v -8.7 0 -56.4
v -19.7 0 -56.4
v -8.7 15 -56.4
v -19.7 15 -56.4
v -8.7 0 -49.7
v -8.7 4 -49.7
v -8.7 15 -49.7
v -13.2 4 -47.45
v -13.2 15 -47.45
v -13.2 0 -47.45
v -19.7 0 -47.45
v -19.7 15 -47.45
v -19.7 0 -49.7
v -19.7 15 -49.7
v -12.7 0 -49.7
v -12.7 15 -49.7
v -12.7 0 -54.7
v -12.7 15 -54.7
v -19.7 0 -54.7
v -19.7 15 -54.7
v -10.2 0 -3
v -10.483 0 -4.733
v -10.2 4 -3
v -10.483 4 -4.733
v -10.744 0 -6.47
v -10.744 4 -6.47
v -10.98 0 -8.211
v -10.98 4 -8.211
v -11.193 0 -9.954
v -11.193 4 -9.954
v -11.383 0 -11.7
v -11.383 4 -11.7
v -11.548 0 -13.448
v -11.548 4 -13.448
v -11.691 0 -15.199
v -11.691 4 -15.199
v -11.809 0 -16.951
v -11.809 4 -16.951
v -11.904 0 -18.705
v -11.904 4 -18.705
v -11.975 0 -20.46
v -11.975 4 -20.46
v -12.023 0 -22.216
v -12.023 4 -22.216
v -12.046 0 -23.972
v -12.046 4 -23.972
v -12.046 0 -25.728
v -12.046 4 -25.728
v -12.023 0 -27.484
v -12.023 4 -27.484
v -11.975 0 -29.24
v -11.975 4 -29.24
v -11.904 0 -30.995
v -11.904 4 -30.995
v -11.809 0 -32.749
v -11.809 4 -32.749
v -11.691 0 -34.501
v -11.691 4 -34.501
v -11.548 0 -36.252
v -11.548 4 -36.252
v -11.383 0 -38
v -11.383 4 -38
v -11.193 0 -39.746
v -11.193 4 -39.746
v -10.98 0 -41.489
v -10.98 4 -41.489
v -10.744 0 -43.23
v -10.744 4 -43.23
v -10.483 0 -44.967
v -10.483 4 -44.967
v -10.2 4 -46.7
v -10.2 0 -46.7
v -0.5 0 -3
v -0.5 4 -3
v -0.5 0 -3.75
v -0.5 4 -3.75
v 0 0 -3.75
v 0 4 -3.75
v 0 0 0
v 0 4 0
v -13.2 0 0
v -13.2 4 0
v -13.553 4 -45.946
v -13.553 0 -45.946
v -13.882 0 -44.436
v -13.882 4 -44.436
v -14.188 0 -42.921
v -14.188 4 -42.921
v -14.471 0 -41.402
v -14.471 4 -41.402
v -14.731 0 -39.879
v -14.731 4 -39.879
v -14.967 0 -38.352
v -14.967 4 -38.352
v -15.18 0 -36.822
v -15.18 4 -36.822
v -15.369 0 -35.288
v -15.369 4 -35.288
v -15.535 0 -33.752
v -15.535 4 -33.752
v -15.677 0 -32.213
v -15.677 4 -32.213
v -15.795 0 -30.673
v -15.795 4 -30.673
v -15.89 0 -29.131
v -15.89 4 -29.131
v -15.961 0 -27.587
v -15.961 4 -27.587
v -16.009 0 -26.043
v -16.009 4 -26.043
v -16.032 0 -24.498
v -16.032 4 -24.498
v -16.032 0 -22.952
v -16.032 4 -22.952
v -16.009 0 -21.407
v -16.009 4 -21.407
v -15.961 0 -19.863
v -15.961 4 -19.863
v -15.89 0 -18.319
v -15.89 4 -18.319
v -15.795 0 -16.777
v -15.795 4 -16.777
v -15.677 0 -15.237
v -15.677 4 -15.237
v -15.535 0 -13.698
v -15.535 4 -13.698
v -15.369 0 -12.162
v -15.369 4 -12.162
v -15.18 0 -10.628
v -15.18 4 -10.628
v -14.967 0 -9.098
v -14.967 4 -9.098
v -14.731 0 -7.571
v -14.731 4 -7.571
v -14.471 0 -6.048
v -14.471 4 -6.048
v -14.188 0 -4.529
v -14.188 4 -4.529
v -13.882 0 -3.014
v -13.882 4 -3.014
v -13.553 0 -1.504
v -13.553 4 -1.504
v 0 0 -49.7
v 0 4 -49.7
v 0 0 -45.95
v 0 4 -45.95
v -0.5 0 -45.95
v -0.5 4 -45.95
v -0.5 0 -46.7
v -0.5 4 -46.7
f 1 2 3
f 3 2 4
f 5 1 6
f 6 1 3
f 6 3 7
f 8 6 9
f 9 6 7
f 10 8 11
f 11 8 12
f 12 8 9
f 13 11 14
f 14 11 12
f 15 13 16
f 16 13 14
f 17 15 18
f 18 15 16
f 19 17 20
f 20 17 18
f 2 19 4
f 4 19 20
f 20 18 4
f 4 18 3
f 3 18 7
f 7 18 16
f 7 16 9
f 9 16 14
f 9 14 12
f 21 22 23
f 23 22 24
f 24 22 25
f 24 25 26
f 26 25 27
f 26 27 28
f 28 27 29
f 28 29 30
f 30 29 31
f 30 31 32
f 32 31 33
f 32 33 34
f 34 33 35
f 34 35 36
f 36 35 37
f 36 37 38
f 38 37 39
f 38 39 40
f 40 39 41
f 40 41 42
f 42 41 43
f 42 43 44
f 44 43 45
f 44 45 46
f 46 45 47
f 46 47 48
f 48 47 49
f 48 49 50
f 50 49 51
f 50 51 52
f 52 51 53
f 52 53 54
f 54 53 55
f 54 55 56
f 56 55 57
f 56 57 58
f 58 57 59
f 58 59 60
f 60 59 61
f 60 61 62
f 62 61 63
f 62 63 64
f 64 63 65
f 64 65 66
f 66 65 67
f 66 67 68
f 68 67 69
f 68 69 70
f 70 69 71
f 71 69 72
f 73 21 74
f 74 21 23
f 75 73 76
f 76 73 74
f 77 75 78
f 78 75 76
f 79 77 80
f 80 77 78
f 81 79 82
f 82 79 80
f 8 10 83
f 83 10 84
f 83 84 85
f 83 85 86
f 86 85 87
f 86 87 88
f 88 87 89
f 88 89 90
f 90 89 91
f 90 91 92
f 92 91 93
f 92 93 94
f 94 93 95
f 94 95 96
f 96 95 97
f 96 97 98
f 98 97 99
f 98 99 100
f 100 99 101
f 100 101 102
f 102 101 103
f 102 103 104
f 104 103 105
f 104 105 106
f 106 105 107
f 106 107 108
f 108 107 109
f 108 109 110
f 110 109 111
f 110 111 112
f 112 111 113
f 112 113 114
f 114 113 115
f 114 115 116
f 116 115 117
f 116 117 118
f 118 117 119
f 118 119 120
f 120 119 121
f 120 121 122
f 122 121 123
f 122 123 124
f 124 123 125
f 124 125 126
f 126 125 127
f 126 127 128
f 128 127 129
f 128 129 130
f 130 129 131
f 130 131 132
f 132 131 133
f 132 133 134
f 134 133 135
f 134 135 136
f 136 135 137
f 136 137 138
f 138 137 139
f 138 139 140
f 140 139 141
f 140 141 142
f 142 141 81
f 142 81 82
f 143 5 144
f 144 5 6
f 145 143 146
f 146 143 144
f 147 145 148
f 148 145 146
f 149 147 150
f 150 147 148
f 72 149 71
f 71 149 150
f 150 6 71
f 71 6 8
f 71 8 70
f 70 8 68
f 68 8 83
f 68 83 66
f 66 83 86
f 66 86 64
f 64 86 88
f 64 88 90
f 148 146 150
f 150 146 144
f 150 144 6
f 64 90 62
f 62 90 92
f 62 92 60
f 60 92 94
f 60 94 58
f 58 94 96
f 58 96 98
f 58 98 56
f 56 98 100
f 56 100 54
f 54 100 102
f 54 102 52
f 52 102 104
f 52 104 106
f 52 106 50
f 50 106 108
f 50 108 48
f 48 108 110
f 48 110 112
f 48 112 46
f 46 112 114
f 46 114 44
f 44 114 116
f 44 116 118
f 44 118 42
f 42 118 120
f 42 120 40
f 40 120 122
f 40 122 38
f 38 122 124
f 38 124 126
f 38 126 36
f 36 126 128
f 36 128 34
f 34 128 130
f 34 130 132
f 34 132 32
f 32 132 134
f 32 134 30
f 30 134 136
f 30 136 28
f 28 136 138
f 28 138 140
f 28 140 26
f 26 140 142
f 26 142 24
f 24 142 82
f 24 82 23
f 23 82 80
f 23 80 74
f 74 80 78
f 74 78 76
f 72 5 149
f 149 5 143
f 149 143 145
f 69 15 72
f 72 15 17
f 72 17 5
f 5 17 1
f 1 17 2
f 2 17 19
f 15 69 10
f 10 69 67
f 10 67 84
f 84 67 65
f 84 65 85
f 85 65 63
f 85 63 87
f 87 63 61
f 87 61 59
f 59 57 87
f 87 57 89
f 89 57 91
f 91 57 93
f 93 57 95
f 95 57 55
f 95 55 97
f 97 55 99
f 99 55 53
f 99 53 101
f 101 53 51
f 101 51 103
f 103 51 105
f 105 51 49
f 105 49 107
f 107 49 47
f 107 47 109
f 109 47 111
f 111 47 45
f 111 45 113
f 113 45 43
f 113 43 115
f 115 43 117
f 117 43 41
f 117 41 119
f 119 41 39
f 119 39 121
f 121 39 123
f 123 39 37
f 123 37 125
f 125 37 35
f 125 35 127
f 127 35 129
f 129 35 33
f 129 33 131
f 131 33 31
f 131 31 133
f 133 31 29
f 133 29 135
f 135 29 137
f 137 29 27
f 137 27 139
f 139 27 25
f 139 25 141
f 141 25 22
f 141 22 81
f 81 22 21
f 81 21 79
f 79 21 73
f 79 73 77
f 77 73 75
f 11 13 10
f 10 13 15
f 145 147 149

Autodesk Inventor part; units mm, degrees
ref_plane "YZ Plane" through (0, 0, 0) normal (1, 0, 0) x (0, 1, 0)
ref_plane "XZ Plane" through (0, 0, 0) normal (0, 1, 0) x (-1, 0, 0)
ref_plane "XY Plane" through (0, 0, 0) normal (0, 0, 1) x (1, 0, 0)
sketch "Sketch1" plane through (0, 0, 0) normal (0, 1, 0) x (-1, 0, 0)
  line L0 (10.2, -3) -> (10.2, -46.7)
  line L1 (10.2, -46.7) -> (0.5, -46.7)
  line L2 (0.5, -46.7) -> (0.5, -45.95)
  line L3 (0.5, -45.95) -> (0, -45.95)
  line L4 (0, -45.95) -> (0, -46.7)
  line L5 (0.5, -3) -> (0.5, -3.75)
  line L6 (0.5, -3.75) -> (0, -3.75)
  line L7 (0, -3.75) -> (0, -3)
  line L8 (0, -3) -> (0, 0)
  line L9 (0, 0) -> (13.2, 0)
  line L10 (0, -49.7) -> (0, -46.7)
  line L11 (10.2, -3) -> (0.5, -3)
  line L12 (8.7, -56.4) -> (19.7, -56.4)
  line L13 (19.7, -56.4) -> (19.7, -54.7)
  line L14 (19.7, -54.7) -> (12.7, -54.7)
  line L15 (12.7, -54.7) -> (12.7, -49.7)
  line L16 (12.7, -49.7) -> (13.2, -49.7)
  line L17 (19.7, -49.7) -> (19.7, -47.45)
  line L18 (19.7, -47.45) -> (13.2, -47.45)
  line L19 (8.7, -56.4) -> (8.7, -49.7)
  arc A0 (10.2, -46.7) -> (10.2, -3) centre (-117.9506, -24.85) ccw
  line L20 (13.2, -49.7) -> (19.7, -49.7)
  line L21 (12.7, -49.7) -> (12.7, -49.7)
  line L22 (8.7, -49.7) -> (0, -49.7)
  line L23 (13.2, -47.45) -> (8.7, -49.7)
  arc A1 (13.2, -47.45) -> (13.2, 0) centre (-84.6392, -23.725) ccw
  point P0 (0, 0)
  dimension "d1" = 9.7
  dimension "d2" = 0.75
  dimension "d3" = 0.5
  dimension "d6" = 0.5
  dimension "d10" = 43.7
  dimension "d13" = 0.75
  dimension "d14" = 3
  dimension "d16" = 5
  dimension "d19" = 7
  dimension "d30" = 2.25
  dimension "d31" = 1.7
  dimension "d34" = 2.25
  dimension "d37" = 4
  dimension "d38" = 100.6746
  dimension "d39" = 130
extrude "Extrusion4" add sketch "Sketch1" along normal blind 4 contours L11 L5 L6 L7 L8 L9 A1 L23 L22 L10 L4 L3 L2 L1 A0
extrude "Extrusion5" add sketch "Sketch1" along normal blind 15 contours L23 L18 L17 L20 L16 L15 L14 L13 L12 L19
properties part number "LeftClip"
